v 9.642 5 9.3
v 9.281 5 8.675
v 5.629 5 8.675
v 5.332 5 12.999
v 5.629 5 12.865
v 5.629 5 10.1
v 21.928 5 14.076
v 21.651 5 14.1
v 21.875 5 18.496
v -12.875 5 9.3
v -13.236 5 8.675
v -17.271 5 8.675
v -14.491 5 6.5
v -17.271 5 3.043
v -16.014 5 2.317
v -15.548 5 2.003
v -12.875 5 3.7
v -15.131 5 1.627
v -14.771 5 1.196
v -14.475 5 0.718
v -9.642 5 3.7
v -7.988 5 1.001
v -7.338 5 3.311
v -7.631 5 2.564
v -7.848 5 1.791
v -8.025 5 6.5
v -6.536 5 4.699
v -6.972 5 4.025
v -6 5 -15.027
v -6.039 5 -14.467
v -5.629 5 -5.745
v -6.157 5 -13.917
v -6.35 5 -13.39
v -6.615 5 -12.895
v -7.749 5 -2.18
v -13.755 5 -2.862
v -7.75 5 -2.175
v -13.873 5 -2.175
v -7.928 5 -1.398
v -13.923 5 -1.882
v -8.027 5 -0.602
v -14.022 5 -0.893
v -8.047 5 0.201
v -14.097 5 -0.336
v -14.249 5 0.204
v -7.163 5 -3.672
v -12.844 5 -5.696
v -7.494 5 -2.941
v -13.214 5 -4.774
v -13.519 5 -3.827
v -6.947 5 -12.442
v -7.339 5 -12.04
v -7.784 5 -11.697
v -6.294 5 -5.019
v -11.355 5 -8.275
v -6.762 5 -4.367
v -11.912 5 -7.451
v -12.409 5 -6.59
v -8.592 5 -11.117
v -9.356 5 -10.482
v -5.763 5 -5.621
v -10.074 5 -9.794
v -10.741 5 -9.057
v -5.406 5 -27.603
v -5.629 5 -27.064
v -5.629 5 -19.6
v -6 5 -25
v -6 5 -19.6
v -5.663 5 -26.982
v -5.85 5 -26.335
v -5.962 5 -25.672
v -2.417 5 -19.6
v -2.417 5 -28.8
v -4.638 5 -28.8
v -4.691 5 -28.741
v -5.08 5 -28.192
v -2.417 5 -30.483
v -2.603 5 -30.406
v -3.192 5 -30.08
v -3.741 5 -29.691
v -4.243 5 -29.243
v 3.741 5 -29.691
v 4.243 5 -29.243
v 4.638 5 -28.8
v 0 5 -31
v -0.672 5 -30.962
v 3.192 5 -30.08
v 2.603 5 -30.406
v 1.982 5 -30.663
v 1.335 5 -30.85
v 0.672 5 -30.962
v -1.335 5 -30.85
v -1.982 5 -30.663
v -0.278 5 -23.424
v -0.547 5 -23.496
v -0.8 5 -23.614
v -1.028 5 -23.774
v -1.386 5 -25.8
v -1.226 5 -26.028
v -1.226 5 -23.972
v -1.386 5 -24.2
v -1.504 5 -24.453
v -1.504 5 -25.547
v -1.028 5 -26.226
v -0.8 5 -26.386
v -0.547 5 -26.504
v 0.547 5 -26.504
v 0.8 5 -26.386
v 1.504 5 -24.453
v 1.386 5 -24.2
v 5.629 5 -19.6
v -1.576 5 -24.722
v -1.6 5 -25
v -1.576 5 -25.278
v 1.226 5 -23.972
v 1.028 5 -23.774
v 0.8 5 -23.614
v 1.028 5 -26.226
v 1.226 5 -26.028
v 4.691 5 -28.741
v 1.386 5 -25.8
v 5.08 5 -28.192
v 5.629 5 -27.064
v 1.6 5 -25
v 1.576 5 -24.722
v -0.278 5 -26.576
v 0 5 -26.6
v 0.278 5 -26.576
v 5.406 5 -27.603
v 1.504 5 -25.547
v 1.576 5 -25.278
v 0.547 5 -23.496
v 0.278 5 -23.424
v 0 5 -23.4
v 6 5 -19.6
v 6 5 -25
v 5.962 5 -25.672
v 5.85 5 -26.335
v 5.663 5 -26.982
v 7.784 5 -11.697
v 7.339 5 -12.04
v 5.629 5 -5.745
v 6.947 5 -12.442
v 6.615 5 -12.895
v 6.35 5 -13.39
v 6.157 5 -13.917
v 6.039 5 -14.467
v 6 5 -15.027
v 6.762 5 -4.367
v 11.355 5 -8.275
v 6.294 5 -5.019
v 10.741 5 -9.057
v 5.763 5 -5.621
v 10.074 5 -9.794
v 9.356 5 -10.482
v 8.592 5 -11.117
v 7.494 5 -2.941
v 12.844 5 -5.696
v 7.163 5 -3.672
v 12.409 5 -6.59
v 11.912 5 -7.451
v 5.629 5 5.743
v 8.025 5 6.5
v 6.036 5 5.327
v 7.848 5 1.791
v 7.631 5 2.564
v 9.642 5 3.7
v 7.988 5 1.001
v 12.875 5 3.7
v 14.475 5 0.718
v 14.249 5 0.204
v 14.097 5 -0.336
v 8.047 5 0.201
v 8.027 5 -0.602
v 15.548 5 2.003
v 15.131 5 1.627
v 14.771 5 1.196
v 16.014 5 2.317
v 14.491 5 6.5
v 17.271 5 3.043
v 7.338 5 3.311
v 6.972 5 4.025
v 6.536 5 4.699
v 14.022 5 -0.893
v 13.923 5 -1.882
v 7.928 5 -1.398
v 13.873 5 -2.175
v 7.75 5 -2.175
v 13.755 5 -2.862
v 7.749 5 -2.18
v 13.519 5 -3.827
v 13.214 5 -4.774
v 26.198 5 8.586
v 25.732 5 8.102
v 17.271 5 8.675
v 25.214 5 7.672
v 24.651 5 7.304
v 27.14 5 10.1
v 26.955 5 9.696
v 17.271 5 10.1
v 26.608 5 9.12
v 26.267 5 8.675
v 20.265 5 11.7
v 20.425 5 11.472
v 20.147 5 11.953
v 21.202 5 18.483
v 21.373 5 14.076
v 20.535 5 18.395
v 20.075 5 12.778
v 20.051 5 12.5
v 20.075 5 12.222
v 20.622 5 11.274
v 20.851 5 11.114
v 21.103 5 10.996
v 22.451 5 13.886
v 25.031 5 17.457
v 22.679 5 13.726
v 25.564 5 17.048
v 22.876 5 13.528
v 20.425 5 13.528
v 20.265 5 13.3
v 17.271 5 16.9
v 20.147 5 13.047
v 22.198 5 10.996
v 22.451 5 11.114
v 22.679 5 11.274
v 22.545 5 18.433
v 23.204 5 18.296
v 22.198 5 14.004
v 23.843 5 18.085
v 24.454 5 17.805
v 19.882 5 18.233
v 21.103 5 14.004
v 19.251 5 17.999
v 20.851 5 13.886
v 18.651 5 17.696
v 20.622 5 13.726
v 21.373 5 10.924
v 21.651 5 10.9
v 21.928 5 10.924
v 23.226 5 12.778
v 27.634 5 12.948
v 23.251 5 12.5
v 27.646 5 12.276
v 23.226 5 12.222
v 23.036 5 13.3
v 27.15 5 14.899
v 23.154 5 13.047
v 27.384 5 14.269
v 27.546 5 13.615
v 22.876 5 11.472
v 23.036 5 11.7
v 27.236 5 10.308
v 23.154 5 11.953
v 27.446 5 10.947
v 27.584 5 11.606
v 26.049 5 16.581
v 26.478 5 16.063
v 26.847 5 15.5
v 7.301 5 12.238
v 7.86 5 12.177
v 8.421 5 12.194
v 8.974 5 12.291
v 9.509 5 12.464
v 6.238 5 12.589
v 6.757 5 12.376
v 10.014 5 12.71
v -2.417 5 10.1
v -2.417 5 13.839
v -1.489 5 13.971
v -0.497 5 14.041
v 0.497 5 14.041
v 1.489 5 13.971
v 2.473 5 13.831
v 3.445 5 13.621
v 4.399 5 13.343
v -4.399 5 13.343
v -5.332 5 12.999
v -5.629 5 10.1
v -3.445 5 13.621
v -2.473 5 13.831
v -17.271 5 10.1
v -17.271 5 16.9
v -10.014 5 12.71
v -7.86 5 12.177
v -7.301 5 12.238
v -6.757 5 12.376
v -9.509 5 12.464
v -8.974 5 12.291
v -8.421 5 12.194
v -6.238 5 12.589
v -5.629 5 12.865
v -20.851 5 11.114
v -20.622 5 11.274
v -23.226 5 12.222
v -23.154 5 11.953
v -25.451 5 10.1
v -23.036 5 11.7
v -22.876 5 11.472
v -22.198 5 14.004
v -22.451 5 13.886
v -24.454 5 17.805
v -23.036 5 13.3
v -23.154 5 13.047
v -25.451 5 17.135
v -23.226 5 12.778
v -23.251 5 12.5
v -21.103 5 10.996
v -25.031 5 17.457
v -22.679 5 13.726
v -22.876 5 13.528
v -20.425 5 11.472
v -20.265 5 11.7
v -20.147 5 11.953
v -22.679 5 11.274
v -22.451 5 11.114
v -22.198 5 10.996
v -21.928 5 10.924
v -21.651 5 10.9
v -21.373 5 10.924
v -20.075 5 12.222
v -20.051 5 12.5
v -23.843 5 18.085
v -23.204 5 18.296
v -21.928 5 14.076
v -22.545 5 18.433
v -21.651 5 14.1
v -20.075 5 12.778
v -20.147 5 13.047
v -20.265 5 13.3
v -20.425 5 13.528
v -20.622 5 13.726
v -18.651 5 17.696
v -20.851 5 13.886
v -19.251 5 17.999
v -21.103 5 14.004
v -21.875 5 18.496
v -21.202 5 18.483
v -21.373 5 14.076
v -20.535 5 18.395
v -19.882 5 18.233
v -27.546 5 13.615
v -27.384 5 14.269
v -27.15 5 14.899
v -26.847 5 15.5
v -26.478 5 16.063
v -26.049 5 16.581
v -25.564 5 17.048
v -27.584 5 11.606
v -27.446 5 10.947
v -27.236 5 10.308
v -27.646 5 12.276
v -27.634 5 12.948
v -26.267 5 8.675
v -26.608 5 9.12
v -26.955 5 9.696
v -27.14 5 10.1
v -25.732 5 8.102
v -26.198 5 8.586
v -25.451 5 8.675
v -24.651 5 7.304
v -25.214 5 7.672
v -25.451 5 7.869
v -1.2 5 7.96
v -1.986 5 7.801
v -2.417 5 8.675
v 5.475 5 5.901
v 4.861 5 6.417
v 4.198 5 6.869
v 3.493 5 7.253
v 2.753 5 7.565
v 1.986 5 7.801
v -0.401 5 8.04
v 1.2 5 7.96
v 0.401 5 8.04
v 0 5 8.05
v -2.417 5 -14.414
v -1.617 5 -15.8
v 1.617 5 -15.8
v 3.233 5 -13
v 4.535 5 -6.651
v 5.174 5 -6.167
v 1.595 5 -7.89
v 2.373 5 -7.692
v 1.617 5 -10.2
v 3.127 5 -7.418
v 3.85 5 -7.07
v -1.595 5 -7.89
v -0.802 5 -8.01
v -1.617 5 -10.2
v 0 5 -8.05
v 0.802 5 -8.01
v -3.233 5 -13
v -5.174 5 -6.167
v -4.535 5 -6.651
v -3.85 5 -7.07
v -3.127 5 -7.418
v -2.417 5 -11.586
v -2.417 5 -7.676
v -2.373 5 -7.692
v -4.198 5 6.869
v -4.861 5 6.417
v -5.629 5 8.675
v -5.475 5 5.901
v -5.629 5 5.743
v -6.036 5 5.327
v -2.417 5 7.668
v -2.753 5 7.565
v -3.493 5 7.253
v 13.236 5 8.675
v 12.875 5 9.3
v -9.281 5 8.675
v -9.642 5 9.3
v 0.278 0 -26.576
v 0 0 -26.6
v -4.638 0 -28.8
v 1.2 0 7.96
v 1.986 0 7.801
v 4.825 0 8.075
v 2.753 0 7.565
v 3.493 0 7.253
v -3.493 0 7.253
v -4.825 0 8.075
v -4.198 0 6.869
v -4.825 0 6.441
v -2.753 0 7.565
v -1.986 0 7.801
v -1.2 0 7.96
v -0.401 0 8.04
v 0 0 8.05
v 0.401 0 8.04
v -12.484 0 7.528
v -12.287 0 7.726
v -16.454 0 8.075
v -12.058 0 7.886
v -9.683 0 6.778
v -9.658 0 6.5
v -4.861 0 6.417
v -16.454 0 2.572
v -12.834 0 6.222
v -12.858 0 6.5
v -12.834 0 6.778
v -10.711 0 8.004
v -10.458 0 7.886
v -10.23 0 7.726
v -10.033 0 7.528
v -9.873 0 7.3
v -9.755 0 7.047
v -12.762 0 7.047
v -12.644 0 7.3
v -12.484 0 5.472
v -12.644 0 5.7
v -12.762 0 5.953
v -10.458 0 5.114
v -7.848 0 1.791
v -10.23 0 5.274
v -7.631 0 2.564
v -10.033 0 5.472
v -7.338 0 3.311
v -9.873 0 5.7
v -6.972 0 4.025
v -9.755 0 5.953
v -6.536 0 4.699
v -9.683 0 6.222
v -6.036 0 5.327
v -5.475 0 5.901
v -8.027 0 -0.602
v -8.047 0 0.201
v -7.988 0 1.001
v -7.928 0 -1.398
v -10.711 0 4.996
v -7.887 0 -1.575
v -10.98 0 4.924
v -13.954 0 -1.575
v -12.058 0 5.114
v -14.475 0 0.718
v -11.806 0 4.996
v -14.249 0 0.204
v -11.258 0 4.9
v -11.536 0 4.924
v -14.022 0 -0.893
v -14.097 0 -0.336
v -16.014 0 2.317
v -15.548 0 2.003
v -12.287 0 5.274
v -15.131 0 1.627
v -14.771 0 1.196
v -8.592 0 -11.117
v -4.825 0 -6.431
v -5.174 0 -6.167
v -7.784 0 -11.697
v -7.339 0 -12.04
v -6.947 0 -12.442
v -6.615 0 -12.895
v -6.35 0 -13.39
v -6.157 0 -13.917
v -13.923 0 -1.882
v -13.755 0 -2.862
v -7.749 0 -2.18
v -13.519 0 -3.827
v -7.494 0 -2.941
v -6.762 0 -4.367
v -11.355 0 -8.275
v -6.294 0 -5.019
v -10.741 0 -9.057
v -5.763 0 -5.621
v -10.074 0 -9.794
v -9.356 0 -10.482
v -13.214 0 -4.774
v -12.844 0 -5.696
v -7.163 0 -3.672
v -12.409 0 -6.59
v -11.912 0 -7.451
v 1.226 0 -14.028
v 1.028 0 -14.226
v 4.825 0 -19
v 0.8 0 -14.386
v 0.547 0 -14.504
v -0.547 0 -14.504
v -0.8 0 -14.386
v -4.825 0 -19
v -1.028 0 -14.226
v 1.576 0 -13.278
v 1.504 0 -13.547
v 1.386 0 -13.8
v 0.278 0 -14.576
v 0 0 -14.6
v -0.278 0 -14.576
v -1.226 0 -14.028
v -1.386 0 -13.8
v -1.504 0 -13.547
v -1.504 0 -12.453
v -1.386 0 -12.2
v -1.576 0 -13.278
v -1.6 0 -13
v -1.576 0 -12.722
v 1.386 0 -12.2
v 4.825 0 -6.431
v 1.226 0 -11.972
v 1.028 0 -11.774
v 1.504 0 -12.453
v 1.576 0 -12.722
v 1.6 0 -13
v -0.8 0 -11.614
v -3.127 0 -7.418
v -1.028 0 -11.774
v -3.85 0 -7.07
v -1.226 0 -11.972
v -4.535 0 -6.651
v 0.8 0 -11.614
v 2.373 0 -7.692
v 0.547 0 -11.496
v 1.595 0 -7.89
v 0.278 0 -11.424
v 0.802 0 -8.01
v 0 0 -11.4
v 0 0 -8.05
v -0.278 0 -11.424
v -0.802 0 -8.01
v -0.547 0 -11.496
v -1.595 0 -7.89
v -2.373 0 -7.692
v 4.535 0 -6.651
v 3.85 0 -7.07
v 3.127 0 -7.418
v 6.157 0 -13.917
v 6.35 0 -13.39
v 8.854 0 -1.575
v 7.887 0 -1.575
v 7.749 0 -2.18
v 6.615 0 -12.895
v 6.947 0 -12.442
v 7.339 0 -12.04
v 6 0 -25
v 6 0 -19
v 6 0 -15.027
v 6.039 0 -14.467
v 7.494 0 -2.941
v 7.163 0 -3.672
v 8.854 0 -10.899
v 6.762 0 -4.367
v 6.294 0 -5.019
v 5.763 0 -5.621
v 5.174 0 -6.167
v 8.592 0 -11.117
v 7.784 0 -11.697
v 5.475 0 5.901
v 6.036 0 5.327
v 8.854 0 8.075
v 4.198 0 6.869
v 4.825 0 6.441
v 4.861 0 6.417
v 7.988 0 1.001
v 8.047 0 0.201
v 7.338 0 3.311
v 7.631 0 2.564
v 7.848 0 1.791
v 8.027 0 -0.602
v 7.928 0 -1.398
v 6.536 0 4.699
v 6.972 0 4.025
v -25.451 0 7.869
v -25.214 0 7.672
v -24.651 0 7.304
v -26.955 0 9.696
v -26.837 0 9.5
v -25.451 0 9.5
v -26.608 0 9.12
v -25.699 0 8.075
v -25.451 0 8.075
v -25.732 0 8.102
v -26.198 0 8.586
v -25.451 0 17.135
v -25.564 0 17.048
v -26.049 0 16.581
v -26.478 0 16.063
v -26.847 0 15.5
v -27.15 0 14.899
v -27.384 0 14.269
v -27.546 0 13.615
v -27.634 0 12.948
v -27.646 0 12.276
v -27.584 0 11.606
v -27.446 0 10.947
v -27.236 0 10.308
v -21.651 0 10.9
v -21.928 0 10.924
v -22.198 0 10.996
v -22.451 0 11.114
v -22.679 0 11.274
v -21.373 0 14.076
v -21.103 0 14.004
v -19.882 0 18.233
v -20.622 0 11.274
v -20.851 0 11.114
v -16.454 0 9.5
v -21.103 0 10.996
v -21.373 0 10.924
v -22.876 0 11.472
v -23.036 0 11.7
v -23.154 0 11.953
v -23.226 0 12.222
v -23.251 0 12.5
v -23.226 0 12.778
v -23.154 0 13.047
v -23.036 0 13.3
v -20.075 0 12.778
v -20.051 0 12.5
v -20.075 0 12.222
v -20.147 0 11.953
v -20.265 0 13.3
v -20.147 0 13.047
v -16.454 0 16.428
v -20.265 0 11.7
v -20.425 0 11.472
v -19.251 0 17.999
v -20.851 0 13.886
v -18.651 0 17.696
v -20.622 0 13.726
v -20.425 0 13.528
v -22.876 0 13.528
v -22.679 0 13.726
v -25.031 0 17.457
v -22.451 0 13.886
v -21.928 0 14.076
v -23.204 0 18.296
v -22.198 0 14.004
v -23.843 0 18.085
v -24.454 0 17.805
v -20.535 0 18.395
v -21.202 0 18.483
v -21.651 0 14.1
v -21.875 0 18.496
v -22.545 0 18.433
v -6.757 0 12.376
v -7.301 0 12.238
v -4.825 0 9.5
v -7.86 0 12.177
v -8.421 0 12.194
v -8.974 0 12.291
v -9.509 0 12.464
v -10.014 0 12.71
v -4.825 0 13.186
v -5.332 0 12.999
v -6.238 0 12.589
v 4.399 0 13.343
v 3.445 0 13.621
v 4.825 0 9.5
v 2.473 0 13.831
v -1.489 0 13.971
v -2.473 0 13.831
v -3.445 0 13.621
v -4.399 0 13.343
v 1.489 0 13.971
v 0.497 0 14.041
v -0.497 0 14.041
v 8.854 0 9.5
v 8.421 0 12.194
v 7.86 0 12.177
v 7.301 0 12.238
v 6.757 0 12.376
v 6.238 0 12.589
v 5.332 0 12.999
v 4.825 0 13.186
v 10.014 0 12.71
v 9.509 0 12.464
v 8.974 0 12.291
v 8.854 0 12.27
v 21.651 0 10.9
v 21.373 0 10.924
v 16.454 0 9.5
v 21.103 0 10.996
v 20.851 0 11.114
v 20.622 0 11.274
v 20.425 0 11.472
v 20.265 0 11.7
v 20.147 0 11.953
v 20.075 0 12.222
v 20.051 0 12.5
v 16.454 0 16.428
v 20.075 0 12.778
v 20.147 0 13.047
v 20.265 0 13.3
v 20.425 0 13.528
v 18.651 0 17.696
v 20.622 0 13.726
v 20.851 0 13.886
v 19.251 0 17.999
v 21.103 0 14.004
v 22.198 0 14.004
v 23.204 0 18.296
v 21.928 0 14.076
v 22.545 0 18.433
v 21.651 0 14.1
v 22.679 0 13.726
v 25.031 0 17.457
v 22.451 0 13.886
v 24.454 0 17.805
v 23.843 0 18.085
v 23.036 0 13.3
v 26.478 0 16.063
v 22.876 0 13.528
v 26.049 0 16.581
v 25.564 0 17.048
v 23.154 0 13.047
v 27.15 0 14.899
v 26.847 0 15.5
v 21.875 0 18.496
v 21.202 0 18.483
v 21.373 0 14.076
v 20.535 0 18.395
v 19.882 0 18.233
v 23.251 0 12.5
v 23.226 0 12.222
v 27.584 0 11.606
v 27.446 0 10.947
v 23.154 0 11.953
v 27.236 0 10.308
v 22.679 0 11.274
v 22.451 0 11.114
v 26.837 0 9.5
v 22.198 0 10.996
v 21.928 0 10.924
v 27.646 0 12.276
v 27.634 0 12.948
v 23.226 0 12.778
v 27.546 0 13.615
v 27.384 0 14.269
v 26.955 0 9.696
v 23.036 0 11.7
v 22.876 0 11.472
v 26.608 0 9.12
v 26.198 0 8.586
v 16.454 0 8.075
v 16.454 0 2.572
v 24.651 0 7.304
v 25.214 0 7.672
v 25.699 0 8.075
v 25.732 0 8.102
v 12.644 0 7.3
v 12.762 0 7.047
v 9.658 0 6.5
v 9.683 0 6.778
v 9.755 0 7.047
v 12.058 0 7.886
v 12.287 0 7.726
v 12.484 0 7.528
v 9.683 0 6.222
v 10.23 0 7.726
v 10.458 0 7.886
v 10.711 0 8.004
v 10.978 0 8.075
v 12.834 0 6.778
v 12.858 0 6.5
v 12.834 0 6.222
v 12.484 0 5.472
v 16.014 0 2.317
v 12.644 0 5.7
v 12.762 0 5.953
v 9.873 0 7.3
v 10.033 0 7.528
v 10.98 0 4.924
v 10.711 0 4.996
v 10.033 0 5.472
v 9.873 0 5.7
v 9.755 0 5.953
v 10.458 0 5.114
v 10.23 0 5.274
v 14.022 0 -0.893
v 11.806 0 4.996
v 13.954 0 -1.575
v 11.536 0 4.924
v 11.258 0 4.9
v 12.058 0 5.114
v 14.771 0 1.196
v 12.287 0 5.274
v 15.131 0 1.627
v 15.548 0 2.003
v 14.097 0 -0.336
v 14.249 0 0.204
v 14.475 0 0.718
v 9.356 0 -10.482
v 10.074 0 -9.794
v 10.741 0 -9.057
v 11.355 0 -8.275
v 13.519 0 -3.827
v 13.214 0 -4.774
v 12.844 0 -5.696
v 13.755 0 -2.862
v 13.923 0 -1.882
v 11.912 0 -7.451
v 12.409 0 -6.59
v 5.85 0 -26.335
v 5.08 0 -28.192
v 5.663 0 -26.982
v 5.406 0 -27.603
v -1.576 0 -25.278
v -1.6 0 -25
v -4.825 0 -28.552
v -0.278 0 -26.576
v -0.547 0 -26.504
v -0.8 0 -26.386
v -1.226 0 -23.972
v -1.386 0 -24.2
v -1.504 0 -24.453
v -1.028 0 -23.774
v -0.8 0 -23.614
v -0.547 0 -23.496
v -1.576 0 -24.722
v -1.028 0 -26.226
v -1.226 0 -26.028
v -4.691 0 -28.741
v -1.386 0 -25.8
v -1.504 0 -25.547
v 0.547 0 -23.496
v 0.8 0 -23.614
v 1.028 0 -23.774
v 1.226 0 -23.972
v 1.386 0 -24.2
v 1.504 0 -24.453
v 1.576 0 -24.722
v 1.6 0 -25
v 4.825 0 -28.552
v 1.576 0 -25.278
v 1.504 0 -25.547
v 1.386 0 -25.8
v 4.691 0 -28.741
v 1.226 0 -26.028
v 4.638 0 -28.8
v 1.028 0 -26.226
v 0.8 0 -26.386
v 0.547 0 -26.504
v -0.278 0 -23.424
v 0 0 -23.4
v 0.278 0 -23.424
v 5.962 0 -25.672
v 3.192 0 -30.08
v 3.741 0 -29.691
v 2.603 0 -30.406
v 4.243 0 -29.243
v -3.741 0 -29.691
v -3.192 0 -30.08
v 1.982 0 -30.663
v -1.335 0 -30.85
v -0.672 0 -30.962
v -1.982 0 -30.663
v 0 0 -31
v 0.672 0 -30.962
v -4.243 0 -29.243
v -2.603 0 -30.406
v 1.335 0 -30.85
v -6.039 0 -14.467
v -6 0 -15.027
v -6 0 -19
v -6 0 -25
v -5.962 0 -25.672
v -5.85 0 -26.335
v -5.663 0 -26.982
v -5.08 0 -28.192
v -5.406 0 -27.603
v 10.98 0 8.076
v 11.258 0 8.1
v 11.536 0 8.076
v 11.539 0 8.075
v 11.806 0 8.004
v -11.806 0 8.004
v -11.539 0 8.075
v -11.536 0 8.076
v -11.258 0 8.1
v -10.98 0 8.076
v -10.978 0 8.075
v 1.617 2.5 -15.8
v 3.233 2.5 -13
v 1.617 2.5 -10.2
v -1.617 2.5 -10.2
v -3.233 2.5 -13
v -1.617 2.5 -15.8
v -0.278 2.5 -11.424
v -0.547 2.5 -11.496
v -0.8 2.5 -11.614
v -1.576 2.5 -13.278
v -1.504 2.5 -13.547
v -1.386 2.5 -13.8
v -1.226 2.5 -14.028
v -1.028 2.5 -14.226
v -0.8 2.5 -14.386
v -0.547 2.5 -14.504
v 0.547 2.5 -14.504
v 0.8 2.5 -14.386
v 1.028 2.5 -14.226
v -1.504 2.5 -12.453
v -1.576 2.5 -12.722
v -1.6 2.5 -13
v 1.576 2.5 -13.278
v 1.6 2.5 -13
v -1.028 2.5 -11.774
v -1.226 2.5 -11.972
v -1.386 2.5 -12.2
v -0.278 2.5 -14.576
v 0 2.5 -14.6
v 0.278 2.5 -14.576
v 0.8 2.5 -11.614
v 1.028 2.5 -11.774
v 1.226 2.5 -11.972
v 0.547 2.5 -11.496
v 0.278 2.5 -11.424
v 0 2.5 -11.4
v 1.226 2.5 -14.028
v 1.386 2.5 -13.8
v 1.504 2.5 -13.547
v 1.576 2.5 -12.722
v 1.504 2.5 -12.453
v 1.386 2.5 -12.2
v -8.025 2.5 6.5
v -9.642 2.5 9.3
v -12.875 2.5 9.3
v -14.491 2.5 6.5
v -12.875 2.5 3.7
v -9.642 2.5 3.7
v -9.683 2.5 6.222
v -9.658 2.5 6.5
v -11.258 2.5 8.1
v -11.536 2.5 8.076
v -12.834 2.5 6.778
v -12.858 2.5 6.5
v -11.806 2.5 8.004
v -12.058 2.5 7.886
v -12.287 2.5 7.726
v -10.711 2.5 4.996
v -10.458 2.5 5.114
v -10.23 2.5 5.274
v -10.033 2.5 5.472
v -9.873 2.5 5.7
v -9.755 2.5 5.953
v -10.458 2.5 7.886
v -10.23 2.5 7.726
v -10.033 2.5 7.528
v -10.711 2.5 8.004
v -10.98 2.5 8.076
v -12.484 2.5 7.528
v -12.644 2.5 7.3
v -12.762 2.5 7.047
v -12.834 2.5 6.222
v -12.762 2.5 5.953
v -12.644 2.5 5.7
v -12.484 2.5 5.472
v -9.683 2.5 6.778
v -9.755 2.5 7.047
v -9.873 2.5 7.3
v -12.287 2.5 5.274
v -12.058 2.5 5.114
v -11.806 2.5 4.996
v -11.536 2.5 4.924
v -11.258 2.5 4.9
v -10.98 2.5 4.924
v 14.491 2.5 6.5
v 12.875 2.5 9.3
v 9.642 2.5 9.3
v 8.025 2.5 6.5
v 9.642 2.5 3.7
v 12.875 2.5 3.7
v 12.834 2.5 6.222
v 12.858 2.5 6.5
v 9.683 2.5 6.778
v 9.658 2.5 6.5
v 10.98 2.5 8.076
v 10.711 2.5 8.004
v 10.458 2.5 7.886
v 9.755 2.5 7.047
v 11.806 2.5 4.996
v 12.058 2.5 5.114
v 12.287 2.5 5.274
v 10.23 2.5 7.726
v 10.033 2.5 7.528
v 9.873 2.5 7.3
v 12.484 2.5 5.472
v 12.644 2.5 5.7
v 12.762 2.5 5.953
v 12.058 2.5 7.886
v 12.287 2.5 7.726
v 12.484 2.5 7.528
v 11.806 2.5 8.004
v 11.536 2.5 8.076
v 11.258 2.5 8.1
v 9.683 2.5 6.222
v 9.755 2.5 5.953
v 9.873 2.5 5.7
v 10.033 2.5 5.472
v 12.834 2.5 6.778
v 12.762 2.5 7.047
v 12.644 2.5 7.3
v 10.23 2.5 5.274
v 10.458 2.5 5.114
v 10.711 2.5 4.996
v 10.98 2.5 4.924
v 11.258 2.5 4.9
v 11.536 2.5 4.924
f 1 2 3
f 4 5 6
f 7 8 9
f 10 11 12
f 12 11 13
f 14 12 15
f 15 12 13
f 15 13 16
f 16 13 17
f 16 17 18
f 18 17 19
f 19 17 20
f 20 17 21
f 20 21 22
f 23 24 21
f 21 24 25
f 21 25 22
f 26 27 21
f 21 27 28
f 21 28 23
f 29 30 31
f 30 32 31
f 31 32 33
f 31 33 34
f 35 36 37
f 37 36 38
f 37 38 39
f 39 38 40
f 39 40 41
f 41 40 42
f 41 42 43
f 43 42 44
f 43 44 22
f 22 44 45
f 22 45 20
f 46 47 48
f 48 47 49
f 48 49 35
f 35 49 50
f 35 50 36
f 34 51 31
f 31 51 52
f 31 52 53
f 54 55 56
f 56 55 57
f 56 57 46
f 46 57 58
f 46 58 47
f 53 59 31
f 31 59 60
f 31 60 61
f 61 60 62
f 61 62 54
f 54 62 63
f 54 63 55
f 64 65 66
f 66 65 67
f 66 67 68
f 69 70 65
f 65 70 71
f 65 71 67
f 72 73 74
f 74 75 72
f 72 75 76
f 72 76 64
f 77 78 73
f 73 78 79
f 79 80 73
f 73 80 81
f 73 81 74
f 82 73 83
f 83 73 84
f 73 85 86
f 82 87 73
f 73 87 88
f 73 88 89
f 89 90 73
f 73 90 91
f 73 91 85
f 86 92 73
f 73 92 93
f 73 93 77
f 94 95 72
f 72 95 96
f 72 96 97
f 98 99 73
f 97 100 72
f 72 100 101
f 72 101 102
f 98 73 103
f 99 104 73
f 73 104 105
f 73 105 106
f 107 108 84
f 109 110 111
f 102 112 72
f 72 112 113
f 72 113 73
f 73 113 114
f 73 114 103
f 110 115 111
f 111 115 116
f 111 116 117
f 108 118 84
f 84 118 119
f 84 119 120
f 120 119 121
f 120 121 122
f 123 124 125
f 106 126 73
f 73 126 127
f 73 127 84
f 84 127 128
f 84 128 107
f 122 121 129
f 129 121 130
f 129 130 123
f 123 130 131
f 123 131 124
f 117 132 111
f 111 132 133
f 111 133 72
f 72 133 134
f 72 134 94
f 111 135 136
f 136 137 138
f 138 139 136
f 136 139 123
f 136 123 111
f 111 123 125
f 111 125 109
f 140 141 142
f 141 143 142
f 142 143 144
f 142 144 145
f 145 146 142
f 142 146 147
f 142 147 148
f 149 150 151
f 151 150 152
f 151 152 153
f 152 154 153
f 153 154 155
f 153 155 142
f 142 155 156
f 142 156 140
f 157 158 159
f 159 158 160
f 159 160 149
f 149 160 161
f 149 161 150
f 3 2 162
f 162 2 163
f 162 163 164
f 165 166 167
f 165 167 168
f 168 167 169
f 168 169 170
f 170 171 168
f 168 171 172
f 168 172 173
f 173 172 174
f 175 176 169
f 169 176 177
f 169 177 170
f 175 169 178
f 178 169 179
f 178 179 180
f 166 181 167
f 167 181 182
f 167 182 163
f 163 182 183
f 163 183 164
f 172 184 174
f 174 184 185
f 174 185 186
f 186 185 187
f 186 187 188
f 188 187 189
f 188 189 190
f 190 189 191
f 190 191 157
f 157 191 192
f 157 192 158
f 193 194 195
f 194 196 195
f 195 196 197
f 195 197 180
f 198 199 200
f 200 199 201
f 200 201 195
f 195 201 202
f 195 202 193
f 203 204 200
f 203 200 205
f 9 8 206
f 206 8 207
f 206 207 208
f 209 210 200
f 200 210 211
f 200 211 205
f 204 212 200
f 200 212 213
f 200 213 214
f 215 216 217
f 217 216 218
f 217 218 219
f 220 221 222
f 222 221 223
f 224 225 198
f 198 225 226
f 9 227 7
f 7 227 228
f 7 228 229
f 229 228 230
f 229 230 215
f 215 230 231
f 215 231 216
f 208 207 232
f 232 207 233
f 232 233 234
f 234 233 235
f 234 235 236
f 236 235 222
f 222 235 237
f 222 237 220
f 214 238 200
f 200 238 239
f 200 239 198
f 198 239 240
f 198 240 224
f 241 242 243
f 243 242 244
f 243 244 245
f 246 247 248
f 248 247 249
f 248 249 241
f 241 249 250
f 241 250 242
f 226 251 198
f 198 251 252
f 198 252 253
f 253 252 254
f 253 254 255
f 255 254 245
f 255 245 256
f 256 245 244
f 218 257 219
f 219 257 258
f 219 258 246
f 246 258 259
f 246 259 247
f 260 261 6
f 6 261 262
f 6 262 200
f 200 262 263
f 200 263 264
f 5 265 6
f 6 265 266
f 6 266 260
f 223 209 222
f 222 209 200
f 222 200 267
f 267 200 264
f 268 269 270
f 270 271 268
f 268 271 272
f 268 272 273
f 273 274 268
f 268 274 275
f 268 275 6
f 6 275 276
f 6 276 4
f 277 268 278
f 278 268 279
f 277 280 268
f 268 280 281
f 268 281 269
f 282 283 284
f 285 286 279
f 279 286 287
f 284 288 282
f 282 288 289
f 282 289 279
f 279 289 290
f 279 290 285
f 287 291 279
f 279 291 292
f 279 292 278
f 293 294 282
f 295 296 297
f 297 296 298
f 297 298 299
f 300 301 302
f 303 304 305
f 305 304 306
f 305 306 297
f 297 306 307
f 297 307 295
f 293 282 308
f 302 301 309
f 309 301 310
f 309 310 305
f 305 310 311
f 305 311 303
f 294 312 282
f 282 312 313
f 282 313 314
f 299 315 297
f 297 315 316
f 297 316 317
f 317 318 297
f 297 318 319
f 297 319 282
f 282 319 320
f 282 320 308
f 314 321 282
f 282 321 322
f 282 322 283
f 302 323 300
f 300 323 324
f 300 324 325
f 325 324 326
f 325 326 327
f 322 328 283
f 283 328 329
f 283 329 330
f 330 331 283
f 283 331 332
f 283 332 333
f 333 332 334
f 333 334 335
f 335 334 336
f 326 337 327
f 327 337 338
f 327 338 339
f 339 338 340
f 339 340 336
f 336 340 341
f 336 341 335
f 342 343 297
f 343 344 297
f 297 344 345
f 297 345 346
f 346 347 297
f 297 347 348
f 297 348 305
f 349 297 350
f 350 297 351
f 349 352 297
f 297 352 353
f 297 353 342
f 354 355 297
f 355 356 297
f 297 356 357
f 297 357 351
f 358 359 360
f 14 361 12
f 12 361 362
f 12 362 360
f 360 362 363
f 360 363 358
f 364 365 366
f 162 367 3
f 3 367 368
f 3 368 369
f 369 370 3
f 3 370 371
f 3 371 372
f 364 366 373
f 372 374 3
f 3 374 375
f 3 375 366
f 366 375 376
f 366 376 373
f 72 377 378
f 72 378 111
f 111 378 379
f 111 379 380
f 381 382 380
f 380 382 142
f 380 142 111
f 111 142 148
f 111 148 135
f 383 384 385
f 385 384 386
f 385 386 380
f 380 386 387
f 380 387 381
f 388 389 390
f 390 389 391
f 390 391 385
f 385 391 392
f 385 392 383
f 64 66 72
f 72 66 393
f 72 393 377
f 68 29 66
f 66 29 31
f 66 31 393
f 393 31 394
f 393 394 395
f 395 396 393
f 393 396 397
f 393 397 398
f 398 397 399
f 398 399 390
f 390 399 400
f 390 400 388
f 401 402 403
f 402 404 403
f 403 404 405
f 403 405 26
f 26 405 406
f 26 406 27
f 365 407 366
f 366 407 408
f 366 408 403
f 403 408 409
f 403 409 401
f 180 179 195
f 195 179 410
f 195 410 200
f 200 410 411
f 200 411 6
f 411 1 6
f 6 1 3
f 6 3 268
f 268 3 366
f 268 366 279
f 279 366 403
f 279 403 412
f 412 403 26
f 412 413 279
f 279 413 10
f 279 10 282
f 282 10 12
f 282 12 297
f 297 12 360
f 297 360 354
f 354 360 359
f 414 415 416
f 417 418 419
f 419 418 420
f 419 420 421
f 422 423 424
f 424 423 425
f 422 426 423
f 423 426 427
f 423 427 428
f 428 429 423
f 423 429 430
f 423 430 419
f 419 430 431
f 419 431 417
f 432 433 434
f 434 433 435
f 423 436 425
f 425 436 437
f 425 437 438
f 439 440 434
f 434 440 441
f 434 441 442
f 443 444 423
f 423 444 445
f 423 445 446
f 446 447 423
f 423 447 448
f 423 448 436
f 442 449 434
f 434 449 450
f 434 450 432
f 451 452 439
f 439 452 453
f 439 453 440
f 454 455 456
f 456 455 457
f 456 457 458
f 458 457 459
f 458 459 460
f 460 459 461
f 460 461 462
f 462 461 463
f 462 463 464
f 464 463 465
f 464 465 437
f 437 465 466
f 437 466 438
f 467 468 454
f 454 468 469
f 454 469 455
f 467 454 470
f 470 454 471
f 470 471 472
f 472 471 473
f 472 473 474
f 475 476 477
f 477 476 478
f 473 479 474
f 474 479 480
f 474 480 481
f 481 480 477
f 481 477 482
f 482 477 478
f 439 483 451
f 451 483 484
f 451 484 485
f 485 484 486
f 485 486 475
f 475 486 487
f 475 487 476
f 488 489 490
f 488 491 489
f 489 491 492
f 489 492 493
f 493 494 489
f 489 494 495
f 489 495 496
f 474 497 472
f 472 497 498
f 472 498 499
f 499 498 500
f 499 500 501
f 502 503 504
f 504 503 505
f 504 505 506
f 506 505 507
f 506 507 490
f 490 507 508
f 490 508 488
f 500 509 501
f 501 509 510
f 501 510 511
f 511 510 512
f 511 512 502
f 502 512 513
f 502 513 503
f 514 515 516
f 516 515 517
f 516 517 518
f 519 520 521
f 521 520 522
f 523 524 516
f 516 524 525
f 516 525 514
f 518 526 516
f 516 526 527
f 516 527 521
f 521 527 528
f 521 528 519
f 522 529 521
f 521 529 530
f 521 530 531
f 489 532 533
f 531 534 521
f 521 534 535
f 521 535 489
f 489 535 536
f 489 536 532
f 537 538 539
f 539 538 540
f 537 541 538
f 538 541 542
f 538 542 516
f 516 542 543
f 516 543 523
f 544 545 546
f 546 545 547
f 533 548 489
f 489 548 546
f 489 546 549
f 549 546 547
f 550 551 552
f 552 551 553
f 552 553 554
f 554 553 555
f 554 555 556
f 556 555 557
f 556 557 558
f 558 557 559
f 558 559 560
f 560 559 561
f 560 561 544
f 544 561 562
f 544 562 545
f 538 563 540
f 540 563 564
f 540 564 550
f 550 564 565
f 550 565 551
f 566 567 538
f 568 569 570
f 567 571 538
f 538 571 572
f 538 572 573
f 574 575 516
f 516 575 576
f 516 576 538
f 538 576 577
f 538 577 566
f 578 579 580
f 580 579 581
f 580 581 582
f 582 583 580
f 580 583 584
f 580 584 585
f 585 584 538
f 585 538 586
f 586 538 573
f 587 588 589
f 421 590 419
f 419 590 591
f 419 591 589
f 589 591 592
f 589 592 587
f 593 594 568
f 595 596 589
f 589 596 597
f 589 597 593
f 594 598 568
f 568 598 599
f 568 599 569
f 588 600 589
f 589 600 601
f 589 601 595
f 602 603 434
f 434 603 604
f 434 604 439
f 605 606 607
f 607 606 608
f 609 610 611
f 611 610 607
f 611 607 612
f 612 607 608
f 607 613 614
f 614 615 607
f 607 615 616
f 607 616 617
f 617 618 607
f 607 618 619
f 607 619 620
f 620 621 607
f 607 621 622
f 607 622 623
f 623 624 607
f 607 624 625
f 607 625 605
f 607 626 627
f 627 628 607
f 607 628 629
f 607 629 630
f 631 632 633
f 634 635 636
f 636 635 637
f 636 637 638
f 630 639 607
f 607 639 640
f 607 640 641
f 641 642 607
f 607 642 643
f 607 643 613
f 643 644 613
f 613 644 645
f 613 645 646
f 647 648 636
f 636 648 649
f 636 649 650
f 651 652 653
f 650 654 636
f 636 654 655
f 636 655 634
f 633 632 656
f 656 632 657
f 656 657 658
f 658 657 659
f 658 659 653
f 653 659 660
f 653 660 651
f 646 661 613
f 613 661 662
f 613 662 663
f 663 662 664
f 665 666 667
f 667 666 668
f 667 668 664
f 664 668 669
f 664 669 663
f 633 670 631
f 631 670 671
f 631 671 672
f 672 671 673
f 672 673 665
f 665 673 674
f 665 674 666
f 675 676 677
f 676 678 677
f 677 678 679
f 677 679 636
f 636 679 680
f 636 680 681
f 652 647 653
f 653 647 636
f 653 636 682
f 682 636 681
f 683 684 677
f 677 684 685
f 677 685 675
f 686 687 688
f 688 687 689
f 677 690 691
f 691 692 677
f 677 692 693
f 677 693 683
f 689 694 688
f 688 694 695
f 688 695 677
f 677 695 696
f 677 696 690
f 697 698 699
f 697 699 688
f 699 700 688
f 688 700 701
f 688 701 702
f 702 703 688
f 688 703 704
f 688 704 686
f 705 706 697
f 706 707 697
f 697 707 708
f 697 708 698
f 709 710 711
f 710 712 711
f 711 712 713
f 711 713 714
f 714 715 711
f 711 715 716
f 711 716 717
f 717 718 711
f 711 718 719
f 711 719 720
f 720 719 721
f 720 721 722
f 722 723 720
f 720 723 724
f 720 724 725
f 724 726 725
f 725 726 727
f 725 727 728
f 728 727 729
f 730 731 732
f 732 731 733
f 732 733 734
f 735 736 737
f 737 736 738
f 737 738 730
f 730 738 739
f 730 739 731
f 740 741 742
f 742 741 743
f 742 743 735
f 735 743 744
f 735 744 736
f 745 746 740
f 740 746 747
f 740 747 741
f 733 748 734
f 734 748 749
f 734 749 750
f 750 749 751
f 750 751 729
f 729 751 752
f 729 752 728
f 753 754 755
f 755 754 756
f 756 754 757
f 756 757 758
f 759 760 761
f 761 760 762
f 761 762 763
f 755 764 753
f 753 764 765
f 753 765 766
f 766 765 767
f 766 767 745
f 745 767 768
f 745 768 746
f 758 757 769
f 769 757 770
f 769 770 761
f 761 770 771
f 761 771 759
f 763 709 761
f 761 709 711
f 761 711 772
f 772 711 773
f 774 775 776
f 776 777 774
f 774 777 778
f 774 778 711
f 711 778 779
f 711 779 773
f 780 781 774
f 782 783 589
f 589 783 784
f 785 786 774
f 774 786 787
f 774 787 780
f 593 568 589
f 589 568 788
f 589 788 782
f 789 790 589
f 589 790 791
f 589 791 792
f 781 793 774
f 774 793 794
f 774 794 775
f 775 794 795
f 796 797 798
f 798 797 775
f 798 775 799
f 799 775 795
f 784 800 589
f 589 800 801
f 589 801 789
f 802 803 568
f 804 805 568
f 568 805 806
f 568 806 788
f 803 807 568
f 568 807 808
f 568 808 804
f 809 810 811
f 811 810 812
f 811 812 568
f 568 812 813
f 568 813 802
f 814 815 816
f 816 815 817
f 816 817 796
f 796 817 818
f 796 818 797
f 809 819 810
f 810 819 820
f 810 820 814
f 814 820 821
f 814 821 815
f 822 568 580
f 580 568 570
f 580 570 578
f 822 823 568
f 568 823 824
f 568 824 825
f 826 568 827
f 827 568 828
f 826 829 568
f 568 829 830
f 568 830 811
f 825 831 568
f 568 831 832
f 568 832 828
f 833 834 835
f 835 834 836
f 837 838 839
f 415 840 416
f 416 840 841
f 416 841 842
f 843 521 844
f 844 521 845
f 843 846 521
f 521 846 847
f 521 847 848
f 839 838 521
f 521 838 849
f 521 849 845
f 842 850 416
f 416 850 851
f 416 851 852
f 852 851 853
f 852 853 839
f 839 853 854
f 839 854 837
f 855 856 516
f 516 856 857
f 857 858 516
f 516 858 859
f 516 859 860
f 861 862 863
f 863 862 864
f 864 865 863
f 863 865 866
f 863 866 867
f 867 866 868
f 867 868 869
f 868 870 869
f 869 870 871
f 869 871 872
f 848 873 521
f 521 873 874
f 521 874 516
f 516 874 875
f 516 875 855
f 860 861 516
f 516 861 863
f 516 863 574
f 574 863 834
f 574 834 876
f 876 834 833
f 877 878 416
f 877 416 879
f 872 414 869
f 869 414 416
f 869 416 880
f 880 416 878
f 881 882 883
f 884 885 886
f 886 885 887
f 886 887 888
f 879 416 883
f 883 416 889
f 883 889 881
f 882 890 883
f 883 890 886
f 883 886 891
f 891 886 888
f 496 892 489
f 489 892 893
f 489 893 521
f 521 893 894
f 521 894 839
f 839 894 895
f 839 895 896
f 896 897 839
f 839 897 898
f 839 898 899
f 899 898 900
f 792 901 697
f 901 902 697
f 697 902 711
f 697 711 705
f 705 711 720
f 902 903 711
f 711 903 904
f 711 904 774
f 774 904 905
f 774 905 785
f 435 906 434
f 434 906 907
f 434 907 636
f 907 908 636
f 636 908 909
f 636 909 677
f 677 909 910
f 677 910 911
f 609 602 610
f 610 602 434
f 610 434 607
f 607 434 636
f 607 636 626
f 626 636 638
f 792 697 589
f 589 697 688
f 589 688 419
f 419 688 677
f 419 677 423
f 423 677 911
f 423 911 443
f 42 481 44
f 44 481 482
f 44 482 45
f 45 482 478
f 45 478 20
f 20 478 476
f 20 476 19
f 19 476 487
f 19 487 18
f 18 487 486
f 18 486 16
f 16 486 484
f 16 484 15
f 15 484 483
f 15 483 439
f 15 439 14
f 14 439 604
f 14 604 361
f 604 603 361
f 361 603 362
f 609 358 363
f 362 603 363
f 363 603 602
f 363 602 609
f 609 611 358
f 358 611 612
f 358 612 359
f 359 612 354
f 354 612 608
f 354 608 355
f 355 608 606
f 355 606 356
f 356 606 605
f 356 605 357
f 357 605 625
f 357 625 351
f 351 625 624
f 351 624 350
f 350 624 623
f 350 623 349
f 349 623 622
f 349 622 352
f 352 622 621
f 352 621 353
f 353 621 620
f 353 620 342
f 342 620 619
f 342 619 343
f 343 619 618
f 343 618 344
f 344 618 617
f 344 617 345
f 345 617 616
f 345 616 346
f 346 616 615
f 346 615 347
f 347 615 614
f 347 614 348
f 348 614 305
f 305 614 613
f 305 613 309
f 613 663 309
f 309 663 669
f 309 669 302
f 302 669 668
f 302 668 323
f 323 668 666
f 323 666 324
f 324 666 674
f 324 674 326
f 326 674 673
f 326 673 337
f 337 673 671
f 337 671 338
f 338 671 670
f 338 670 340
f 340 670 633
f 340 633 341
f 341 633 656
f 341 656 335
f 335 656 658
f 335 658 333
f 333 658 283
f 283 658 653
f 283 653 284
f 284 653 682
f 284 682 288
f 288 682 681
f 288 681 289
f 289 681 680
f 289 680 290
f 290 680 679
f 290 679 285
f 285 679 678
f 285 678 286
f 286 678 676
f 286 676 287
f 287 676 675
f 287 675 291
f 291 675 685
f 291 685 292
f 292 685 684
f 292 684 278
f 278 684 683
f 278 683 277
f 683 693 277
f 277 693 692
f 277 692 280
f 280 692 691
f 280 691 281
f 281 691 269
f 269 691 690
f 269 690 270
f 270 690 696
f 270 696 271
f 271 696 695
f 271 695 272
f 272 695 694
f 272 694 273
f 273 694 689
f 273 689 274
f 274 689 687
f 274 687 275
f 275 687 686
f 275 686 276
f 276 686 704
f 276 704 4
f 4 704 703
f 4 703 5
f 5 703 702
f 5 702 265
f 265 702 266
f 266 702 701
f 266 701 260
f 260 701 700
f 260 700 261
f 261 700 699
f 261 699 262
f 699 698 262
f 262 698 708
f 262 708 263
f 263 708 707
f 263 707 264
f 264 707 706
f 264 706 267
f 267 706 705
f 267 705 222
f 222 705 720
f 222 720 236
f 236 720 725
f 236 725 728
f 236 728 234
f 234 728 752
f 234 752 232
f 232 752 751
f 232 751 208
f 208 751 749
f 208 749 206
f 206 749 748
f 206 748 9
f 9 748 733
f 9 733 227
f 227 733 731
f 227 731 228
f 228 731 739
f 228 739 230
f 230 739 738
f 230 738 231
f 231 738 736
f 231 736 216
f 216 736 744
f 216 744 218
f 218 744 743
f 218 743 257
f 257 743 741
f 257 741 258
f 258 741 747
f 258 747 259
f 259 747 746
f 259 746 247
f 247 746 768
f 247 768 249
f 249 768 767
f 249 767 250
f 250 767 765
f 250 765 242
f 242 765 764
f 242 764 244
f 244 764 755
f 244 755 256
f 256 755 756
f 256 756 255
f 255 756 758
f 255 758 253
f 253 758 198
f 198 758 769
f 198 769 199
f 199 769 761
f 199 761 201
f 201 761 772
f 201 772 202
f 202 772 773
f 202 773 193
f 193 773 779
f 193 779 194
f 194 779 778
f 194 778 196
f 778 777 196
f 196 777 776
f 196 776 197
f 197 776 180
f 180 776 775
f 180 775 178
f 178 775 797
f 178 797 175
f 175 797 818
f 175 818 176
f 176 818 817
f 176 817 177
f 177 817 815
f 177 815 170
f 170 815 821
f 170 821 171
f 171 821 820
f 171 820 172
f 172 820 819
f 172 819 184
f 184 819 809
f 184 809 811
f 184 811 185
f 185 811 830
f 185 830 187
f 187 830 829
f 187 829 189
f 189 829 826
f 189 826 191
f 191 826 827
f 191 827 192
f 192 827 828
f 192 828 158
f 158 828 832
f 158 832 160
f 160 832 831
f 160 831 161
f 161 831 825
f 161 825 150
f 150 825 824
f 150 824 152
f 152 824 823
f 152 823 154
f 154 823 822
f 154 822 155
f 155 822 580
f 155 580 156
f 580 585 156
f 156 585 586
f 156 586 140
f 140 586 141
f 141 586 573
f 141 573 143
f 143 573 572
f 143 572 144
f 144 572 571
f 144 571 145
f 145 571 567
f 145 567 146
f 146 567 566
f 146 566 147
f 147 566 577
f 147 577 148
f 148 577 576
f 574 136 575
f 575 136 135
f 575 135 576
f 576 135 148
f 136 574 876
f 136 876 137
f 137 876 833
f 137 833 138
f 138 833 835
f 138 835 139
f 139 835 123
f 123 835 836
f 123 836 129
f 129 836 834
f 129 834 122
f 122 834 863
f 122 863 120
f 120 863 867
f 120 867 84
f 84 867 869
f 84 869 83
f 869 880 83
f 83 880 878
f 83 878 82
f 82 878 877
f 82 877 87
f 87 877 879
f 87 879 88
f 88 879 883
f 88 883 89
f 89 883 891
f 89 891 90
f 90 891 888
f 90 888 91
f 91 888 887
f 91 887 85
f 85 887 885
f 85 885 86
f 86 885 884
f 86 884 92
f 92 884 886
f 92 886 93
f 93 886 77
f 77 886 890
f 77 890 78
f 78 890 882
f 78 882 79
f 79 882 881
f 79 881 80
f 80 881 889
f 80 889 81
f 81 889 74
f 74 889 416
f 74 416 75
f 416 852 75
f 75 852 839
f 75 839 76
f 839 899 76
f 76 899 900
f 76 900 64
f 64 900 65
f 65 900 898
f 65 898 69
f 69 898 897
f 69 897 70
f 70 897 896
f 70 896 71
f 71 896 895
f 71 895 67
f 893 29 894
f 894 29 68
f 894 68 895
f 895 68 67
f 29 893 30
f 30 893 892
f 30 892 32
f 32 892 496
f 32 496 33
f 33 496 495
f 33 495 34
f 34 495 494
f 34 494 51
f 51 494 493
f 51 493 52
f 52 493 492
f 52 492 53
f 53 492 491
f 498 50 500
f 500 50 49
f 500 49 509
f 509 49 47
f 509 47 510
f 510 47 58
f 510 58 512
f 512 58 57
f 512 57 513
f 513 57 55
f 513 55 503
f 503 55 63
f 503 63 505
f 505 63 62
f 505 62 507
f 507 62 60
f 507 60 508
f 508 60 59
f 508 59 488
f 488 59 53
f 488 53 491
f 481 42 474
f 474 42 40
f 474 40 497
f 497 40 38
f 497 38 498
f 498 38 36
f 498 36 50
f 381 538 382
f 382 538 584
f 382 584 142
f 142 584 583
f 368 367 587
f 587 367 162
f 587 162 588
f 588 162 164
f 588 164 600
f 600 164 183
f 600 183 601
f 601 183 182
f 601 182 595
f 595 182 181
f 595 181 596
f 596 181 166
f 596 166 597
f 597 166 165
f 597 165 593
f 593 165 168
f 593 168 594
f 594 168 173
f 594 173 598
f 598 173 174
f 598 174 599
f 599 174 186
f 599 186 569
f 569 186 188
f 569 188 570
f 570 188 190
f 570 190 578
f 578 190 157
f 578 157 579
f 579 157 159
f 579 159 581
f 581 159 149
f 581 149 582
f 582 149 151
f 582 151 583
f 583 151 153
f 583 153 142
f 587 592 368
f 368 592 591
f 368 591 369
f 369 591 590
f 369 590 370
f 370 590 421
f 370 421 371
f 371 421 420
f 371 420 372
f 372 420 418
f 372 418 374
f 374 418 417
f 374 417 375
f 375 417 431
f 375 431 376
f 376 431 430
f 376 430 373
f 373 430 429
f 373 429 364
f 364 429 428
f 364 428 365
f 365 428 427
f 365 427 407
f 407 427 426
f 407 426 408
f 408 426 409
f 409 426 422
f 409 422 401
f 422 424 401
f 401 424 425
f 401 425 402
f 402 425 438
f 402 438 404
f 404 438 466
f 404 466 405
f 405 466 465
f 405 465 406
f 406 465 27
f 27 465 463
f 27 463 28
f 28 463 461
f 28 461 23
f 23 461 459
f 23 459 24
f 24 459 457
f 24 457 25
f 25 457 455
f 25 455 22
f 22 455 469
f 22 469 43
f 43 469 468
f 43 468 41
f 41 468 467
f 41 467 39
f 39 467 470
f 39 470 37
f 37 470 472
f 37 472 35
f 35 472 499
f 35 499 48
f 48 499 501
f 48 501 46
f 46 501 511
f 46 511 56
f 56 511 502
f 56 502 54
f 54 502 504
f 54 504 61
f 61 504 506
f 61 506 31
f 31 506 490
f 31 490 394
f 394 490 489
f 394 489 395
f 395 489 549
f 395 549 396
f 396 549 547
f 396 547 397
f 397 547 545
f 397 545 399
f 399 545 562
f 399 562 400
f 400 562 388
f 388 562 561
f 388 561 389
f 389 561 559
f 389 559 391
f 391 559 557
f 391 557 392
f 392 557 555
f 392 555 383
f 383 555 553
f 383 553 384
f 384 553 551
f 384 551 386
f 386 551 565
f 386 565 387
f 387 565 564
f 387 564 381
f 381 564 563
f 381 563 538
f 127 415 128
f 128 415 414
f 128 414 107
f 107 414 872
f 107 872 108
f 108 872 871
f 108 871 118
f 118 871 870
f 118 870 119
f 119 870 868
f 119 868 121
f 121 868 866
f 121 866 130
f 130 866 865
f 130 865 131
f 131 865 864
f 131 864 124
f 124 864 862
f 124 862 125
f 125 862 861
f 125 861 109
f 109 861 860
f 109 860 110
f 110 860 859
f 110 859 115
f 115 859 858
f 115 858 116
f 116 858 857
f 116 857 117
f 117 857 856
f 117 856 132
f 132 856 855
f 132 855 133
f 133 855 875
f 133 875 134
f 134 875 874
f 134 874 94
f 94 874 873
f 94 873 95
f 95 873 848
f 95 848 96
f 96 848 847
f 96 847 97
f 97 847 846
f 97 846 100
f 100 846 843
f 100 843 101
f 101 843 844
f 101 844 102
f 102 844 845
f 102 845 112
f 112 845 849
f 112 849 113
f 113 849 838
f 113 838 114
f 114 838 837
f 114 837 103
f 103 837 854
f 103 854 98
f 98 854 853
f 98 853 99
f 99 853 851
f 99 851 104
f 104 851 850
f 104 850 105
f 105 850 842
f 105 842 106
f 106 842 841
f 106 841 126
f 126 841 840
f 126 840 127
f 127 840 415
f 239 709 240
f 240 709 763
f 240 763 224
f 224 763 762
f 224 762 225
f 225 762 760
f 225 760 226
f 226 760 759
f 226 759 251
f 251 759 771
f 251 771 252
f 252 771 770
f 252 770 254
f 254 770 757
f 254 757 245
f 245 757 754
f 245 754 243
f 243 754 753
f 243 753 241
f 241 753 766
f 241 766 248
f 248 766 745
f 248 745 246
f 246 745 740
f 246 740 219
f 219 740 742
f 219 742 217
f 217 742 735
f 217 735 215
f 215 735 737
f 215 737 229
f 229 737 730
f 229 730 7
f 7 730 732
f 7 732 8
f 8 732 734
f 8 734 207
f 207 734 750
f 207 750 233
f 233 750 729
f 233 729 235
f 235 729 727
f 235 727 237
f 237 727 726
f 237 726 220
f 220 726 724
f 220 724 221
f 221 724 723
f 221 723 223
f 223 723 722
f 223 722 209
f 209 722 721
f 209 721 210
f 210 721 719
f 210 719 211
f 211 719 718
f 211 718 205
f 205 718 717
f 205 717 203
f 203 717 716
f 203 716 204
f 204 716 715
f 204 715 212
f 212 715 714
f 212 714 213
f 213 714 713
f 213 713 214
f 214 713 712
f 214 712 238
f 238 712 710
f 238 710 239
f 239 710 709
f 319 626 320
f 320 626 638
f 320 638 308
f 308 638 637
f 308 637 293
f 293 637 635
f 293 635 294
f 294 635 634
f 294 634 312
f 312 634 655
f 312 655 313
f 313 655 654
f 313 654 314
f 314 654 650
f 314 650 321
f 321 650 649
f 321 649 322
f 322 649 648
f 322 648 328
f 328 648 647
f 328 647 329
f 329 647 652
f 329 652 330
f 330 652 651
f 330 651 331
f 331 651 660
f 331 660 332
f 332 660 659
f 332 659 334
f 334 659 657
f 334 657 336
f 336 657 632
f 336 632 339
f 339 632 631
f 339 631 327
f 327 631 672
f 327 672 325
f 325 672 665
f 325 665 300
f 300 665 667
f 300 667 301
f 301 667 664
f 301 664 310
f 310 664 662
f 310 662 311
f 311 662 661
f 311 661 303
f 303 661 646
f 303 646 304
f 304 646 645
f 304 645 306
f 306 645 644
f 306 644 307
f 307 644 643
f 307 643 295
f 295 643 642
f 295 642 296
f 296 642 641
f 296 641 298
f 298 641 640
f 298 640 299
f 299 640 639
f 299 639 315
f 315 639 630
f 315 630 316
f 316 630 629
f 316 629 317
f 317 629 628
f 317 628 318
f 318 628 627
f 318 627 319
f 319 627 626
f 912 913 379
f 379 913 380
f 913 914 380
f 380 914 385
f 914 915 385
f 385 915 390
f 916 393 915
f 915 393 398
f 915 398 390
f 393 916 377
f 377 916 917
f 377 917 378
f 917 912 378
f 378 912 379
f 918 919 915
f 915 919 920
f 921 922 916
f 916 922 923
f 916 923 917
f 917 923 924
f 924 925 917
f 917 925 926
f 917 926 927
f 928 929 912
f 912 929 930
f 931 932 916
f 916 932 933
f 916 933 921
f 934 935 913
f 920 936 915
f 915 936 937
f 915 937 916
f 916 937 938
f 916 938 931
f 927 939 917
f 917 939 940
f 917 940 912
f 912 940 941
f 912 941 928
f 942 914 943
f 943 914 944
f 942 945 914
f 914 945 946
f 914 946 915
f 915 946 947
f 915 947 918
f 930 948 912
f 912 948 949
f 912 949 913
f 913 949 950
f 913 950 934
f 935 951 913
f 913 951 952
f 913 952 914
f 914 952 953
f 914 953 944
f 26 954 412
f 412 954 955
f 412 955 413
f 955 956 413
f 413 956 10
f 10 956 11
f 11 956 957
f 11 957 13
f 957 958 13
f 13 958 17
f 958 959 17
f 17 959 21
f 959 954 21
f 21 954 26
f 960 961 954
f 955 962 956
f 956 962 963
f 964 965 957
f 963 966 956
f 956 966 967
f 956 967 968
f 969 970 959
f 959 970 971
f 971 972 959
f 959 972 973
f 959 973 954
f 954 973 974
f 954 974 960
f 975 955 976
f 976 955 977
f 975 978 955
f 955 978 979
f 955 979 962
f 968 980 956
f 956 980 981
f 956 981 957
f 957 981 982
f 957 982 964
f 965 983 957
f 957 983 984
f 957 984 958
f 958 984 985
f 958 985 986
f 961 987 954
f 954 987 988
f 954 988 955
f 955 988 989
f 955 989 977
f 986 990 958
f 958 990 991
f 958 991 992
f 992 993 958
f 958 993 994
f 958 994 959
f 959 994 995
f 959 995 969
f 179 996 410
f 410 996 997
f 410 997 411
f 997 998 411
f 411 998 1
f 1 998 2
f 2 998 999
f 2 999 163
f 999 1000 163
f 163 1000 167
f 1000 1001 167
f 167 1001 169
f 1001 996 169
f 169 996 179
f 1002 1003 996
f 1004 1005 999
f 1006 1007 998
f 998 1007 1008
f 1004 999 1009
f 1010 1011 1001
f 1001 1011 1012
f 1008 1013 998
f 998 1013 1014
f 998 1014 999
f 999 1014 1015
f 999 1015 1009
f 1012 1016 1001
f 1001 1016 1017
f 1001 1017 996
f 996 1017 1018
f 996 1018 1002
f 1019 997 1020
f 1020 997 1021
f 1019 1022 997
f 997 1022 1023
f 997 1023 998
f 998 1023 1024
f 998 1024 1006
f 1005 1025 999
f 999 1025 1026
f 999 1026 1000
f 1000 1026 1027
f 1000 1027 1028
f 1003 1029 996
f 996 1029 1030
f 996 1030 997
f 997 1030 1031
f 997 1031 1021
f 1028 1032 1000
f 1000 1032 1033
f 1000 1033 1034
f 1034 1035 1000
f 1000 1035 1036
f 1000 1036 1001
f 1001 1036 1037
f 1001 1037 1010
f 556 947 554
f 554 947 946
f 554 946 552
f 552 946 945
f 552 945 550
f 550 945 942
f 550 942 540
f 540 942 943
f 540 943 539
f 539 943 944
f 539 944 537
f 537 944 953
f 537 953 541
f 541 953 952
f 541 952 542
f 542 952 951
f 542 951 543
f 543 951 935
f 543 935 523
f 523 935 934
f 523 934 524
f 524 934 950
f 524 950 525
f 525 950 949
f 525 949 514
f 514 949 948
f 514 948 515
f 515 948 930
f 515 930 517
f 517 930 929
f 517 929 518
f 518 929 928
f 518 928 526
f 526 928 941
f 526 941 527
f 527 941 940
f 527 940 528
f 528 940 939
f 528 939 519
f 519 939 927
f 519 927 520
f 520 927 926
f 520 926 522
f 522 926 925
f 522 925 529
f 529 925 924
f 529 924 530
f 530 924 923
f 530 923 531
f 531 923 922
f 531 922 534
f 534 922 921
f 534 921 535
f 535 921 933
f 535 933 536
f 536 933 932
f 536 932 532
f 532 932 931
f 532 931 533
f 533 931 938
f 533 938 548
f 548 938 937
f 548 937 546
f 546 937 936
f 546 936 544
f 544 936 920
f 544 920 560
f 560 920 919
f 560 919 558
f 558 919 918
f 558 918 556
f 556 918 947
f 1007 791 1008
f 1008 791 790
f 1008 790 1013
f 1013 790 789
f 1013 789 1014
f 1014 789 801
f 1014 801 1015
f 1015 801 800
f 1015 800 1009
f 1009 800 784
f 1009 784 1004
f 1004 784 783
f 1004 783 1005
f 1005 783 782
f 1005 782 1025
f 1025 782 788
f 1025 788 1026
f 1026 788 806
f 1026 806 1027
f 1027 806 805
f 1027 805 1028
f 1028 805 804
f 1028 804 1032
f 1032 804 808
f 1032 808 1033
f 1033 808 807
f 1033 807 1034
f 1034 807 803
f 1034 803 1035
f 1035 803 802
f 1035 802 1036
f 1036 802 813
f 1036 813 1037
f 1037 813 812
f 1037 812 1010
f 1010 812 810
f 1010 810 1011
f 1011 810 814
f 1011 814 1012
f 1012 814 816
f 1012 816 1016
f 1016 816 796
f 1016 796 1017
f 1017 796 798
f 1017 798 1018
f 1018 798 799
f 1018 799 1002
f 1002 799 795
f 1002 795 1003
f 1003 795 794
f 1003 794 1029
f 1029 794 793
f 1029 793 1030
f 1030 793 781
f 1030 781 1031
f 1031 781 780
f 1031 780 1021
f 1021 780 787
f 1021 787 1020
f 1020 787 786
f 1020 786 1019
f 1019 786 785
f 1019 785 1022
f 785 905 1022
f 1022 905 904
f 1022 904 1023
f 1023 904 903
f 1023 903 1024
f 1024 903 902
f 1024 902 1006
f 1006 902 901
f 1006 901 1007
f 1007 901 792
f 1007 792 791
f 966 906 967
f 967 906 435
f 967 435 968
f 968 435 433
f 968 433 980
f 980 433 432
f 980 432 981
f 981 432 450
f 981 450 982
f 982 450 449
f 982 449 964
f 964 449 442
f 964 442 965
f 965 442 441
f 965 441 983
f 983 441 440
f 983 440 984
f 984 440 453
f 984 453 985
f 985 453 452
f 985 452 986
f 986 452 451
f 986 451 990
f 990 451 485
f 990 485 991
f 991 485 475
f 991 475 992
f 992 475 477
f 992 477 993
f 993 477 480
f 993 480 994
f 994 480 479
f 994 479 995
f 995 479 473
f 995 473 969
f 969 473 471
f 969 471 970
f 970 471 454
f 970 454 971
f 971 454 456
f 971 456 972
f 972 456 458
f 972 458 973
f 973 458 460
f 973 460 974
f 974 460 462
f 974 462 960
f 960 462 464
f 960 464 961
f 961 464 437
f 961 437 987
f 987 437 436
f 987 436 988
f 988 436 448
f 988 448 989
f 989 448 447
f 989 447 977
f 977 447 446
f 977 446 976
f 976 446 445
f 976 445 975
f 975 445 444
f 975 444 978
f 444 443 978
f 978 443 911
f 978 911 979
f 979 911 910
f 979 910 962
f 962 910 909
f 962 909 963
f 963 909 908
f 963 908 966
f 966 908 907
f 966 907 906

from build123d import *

# Parameters (mm, degrees)
SKETCH1_R           = 8.05
SKETCH1_R_2         = 1.6
BOSS_EXTRUDE1_DEPTH = 5
CUT_EXTRUDE1_DEPTH  = 2.5
CUT_EXTRUDE2_REACH  = 4.5
SKETCH4_R           = 1.6


with BuildPart() as part:
    # Sketch1 → Boss-Extrude1 (new body)
    with BuildSketch(Plane(origin=(0, 0, 0), x_dir=(1, 0, 0), z_dir=(0, 1, 0))):
        with BuildLine():
            Line((24.650635095, -7.303847577), (16.013526617, -2.317210672))
            ThreePointArc((16.013526617, -2.317210672), (14.614747196, -0.962208024), (14.021609361, 0.892732285))
            ThreePointArc((14.021609361, 0.892732285), (12.167656923, 7.025), (7.783933518, 11.696703766))
            ThreePointArc((7.783933518, 11.696703766), (6.474077005, 13.137846354), (6, 15.02672619))
            Line((6, 15.02672619), (6, 25))
            ThreePointArc((6, 25), (0, 31), (-6, 25))
            Line((-6, 25), (-6, 15.02672619))
            ThreePointArc((-6, 15.02672619), (-6.474077005, 13.137846354), (-7.783933518, 11.696703766))
            ThreePointArc((-7.783933518, 11.696703766), (-12.167656923, 7.025), (-14.021609361, 0.892732285))
            ThreePointArc((-14.021609361, 0.892732285), (-14.614747196, -0.962208024), (-16.013526617, -2.317210672))
            Line((-16.013526617, -2.317210672), (-24.650635095, -7.303847577))
            ThreePointArc((-24.650635095, -7.303847577), (-26.846787517, -15.5), (-18.650635095, -17.696152423))
            Line((-18.650635095, -17.696152423), (-10.013526617, -12.709515518))
            ThreePointArc((-10.013526617, -12.709515518), (-8.140670191, -12.17563833), (-6.237675843, -12.589436051))
            ThreePointArc((-6.237675843, -12.589436051), (0, -14.05), (6.237675843, -12.589436051))
            ThreePointArc((6.237675843, -12.589436051), (8.140670191, -12.17563833), (10.013526617, -12.709515518))
            Line((10.013526617, -12.709515518), (18.650635095, -17.696152423))
            ThreePointArc((18.650635095, -17.696152423), (26.846787517, -15.5), (24.650635095, -7.303847577))
        make_face()
        Circle(SKETCH1_R, mode=Mode.SUBTRACT)
        with Locations((0, 25)):
            Circle(SKETCH1_R_2, mode=Mode.SUBTRACT)
        with Locations((21.650635095, -12.5)):
            Circle(SKETCH1_R_2, mode=Mode.SUBTRACT)
        with Locations((-21.650635095, -12.5)):
            Circle(SKETCH1_R_2, mode=Mode.SUBTRACT)
    extrude(amount=BOSS_EXTRUDE1_DEPTH)

    # Sketch3 → Cut-Extrude1 (cut)
    with BuildSketch(Plane(origin=(0, 5, 0), x_dir=(1, 0, 0), z_dir=(0, 1, 0))):
        Polygon((1.616580754, 15.8), (-1.616580754, 15.8), (-3.233161507, 13), (-1.616580754, 10.2), (1.616580754, 10.2), (3.233161507, 13), align=None)
        Polygon((-8.025168742, -6.5), (-9.641749495, -3.7), (-12.874911003, -3.7), (-14.491491757, -6.5), (-12.874911003, -9.3), (-9.641749495, -9.3), align=None)
        Polygon((14.491491757, -6.5), (12.874911003, -3.7), (9.641749495, -3.7), (8.025168742, -6.5), (9.641749495, -9.3), (12.874911003, -9.3), align=None)
    extrude(amount=-CUT_EXTRUDE1_DEPTH, mode=Mode.SUBTRACT)

    # Sketch4 → Cut-Extrude2 (cut, up to next)
    with BuildSketch(Plane(origin=(0, 2.5, 0), x_dir=(1, 0, 0), z_dir=(0, 1, 0)), mode=Mode.PRIVATE) as cut_extrude2_sk1:
        with Locations((0, 13)):
            Circle(SKETCH4_R)
    cut_extrude2_tool1 = extrude(cut_extrude2_sk1.sketch, amount=-CUT_EXTRUDE2_REACH, mode=Mode.PRIVATE) & part.part
    add(cut_extrude2_tool1.solids().sort_by_distance((0, 2.5, -13))[0], mode=Mode.SUBTRACT)
    # Sketch4 → Cut-Extrude2 (cut, up to next)
    with BuildSketch(Plane(origin=(0, 2.5, 0), x_dir=(1, 0, 0), z_dir=(0, 1, 0)), mode=Mode.PRIVATE) as cut_extrude2_sk2:
        with Locations((11.258330249, -6.5)):
            Circle(SKETCH4_R)
    cut_extrude2_tool2 = extrude(cut_extrude2_sk2.sketch, amount=-CUT_EXTRUDE2_REACH, mode=Mode.PRIVATE) & part.part
    add(cut_extrude2_tool2.solids().sort_by_distance((11.25833, 2.5, 6.5))[0], mode=Mode.SUBTRACT)
    # Sketch4 → Cut-Extrude2 (cut, up to next)
    with BuildSketch(Plane(origin=(0, 2.5, 0), x_dir=(1, 0, 0), z_dir=(0, 1, 0)), mode=Mode.PRIVATE) as cut_extrude2_sk3:
        with Locations((-11.258330249, -6.5)):
            Circle(SKETCH4_R)
    cut_extrude2_tool3 = extrude(cut_extrude2_sk3.sketch, amount=-CUT_EXTRUDE2_REACH, mode=Mode.PRIVATE) & part.part
    add(cut_extrude2_tool3.solids().sort_by_distance((-11.25833, 2.5, 6.5))[0], mode=Mode.SUBTRACT)


solid = part.part
